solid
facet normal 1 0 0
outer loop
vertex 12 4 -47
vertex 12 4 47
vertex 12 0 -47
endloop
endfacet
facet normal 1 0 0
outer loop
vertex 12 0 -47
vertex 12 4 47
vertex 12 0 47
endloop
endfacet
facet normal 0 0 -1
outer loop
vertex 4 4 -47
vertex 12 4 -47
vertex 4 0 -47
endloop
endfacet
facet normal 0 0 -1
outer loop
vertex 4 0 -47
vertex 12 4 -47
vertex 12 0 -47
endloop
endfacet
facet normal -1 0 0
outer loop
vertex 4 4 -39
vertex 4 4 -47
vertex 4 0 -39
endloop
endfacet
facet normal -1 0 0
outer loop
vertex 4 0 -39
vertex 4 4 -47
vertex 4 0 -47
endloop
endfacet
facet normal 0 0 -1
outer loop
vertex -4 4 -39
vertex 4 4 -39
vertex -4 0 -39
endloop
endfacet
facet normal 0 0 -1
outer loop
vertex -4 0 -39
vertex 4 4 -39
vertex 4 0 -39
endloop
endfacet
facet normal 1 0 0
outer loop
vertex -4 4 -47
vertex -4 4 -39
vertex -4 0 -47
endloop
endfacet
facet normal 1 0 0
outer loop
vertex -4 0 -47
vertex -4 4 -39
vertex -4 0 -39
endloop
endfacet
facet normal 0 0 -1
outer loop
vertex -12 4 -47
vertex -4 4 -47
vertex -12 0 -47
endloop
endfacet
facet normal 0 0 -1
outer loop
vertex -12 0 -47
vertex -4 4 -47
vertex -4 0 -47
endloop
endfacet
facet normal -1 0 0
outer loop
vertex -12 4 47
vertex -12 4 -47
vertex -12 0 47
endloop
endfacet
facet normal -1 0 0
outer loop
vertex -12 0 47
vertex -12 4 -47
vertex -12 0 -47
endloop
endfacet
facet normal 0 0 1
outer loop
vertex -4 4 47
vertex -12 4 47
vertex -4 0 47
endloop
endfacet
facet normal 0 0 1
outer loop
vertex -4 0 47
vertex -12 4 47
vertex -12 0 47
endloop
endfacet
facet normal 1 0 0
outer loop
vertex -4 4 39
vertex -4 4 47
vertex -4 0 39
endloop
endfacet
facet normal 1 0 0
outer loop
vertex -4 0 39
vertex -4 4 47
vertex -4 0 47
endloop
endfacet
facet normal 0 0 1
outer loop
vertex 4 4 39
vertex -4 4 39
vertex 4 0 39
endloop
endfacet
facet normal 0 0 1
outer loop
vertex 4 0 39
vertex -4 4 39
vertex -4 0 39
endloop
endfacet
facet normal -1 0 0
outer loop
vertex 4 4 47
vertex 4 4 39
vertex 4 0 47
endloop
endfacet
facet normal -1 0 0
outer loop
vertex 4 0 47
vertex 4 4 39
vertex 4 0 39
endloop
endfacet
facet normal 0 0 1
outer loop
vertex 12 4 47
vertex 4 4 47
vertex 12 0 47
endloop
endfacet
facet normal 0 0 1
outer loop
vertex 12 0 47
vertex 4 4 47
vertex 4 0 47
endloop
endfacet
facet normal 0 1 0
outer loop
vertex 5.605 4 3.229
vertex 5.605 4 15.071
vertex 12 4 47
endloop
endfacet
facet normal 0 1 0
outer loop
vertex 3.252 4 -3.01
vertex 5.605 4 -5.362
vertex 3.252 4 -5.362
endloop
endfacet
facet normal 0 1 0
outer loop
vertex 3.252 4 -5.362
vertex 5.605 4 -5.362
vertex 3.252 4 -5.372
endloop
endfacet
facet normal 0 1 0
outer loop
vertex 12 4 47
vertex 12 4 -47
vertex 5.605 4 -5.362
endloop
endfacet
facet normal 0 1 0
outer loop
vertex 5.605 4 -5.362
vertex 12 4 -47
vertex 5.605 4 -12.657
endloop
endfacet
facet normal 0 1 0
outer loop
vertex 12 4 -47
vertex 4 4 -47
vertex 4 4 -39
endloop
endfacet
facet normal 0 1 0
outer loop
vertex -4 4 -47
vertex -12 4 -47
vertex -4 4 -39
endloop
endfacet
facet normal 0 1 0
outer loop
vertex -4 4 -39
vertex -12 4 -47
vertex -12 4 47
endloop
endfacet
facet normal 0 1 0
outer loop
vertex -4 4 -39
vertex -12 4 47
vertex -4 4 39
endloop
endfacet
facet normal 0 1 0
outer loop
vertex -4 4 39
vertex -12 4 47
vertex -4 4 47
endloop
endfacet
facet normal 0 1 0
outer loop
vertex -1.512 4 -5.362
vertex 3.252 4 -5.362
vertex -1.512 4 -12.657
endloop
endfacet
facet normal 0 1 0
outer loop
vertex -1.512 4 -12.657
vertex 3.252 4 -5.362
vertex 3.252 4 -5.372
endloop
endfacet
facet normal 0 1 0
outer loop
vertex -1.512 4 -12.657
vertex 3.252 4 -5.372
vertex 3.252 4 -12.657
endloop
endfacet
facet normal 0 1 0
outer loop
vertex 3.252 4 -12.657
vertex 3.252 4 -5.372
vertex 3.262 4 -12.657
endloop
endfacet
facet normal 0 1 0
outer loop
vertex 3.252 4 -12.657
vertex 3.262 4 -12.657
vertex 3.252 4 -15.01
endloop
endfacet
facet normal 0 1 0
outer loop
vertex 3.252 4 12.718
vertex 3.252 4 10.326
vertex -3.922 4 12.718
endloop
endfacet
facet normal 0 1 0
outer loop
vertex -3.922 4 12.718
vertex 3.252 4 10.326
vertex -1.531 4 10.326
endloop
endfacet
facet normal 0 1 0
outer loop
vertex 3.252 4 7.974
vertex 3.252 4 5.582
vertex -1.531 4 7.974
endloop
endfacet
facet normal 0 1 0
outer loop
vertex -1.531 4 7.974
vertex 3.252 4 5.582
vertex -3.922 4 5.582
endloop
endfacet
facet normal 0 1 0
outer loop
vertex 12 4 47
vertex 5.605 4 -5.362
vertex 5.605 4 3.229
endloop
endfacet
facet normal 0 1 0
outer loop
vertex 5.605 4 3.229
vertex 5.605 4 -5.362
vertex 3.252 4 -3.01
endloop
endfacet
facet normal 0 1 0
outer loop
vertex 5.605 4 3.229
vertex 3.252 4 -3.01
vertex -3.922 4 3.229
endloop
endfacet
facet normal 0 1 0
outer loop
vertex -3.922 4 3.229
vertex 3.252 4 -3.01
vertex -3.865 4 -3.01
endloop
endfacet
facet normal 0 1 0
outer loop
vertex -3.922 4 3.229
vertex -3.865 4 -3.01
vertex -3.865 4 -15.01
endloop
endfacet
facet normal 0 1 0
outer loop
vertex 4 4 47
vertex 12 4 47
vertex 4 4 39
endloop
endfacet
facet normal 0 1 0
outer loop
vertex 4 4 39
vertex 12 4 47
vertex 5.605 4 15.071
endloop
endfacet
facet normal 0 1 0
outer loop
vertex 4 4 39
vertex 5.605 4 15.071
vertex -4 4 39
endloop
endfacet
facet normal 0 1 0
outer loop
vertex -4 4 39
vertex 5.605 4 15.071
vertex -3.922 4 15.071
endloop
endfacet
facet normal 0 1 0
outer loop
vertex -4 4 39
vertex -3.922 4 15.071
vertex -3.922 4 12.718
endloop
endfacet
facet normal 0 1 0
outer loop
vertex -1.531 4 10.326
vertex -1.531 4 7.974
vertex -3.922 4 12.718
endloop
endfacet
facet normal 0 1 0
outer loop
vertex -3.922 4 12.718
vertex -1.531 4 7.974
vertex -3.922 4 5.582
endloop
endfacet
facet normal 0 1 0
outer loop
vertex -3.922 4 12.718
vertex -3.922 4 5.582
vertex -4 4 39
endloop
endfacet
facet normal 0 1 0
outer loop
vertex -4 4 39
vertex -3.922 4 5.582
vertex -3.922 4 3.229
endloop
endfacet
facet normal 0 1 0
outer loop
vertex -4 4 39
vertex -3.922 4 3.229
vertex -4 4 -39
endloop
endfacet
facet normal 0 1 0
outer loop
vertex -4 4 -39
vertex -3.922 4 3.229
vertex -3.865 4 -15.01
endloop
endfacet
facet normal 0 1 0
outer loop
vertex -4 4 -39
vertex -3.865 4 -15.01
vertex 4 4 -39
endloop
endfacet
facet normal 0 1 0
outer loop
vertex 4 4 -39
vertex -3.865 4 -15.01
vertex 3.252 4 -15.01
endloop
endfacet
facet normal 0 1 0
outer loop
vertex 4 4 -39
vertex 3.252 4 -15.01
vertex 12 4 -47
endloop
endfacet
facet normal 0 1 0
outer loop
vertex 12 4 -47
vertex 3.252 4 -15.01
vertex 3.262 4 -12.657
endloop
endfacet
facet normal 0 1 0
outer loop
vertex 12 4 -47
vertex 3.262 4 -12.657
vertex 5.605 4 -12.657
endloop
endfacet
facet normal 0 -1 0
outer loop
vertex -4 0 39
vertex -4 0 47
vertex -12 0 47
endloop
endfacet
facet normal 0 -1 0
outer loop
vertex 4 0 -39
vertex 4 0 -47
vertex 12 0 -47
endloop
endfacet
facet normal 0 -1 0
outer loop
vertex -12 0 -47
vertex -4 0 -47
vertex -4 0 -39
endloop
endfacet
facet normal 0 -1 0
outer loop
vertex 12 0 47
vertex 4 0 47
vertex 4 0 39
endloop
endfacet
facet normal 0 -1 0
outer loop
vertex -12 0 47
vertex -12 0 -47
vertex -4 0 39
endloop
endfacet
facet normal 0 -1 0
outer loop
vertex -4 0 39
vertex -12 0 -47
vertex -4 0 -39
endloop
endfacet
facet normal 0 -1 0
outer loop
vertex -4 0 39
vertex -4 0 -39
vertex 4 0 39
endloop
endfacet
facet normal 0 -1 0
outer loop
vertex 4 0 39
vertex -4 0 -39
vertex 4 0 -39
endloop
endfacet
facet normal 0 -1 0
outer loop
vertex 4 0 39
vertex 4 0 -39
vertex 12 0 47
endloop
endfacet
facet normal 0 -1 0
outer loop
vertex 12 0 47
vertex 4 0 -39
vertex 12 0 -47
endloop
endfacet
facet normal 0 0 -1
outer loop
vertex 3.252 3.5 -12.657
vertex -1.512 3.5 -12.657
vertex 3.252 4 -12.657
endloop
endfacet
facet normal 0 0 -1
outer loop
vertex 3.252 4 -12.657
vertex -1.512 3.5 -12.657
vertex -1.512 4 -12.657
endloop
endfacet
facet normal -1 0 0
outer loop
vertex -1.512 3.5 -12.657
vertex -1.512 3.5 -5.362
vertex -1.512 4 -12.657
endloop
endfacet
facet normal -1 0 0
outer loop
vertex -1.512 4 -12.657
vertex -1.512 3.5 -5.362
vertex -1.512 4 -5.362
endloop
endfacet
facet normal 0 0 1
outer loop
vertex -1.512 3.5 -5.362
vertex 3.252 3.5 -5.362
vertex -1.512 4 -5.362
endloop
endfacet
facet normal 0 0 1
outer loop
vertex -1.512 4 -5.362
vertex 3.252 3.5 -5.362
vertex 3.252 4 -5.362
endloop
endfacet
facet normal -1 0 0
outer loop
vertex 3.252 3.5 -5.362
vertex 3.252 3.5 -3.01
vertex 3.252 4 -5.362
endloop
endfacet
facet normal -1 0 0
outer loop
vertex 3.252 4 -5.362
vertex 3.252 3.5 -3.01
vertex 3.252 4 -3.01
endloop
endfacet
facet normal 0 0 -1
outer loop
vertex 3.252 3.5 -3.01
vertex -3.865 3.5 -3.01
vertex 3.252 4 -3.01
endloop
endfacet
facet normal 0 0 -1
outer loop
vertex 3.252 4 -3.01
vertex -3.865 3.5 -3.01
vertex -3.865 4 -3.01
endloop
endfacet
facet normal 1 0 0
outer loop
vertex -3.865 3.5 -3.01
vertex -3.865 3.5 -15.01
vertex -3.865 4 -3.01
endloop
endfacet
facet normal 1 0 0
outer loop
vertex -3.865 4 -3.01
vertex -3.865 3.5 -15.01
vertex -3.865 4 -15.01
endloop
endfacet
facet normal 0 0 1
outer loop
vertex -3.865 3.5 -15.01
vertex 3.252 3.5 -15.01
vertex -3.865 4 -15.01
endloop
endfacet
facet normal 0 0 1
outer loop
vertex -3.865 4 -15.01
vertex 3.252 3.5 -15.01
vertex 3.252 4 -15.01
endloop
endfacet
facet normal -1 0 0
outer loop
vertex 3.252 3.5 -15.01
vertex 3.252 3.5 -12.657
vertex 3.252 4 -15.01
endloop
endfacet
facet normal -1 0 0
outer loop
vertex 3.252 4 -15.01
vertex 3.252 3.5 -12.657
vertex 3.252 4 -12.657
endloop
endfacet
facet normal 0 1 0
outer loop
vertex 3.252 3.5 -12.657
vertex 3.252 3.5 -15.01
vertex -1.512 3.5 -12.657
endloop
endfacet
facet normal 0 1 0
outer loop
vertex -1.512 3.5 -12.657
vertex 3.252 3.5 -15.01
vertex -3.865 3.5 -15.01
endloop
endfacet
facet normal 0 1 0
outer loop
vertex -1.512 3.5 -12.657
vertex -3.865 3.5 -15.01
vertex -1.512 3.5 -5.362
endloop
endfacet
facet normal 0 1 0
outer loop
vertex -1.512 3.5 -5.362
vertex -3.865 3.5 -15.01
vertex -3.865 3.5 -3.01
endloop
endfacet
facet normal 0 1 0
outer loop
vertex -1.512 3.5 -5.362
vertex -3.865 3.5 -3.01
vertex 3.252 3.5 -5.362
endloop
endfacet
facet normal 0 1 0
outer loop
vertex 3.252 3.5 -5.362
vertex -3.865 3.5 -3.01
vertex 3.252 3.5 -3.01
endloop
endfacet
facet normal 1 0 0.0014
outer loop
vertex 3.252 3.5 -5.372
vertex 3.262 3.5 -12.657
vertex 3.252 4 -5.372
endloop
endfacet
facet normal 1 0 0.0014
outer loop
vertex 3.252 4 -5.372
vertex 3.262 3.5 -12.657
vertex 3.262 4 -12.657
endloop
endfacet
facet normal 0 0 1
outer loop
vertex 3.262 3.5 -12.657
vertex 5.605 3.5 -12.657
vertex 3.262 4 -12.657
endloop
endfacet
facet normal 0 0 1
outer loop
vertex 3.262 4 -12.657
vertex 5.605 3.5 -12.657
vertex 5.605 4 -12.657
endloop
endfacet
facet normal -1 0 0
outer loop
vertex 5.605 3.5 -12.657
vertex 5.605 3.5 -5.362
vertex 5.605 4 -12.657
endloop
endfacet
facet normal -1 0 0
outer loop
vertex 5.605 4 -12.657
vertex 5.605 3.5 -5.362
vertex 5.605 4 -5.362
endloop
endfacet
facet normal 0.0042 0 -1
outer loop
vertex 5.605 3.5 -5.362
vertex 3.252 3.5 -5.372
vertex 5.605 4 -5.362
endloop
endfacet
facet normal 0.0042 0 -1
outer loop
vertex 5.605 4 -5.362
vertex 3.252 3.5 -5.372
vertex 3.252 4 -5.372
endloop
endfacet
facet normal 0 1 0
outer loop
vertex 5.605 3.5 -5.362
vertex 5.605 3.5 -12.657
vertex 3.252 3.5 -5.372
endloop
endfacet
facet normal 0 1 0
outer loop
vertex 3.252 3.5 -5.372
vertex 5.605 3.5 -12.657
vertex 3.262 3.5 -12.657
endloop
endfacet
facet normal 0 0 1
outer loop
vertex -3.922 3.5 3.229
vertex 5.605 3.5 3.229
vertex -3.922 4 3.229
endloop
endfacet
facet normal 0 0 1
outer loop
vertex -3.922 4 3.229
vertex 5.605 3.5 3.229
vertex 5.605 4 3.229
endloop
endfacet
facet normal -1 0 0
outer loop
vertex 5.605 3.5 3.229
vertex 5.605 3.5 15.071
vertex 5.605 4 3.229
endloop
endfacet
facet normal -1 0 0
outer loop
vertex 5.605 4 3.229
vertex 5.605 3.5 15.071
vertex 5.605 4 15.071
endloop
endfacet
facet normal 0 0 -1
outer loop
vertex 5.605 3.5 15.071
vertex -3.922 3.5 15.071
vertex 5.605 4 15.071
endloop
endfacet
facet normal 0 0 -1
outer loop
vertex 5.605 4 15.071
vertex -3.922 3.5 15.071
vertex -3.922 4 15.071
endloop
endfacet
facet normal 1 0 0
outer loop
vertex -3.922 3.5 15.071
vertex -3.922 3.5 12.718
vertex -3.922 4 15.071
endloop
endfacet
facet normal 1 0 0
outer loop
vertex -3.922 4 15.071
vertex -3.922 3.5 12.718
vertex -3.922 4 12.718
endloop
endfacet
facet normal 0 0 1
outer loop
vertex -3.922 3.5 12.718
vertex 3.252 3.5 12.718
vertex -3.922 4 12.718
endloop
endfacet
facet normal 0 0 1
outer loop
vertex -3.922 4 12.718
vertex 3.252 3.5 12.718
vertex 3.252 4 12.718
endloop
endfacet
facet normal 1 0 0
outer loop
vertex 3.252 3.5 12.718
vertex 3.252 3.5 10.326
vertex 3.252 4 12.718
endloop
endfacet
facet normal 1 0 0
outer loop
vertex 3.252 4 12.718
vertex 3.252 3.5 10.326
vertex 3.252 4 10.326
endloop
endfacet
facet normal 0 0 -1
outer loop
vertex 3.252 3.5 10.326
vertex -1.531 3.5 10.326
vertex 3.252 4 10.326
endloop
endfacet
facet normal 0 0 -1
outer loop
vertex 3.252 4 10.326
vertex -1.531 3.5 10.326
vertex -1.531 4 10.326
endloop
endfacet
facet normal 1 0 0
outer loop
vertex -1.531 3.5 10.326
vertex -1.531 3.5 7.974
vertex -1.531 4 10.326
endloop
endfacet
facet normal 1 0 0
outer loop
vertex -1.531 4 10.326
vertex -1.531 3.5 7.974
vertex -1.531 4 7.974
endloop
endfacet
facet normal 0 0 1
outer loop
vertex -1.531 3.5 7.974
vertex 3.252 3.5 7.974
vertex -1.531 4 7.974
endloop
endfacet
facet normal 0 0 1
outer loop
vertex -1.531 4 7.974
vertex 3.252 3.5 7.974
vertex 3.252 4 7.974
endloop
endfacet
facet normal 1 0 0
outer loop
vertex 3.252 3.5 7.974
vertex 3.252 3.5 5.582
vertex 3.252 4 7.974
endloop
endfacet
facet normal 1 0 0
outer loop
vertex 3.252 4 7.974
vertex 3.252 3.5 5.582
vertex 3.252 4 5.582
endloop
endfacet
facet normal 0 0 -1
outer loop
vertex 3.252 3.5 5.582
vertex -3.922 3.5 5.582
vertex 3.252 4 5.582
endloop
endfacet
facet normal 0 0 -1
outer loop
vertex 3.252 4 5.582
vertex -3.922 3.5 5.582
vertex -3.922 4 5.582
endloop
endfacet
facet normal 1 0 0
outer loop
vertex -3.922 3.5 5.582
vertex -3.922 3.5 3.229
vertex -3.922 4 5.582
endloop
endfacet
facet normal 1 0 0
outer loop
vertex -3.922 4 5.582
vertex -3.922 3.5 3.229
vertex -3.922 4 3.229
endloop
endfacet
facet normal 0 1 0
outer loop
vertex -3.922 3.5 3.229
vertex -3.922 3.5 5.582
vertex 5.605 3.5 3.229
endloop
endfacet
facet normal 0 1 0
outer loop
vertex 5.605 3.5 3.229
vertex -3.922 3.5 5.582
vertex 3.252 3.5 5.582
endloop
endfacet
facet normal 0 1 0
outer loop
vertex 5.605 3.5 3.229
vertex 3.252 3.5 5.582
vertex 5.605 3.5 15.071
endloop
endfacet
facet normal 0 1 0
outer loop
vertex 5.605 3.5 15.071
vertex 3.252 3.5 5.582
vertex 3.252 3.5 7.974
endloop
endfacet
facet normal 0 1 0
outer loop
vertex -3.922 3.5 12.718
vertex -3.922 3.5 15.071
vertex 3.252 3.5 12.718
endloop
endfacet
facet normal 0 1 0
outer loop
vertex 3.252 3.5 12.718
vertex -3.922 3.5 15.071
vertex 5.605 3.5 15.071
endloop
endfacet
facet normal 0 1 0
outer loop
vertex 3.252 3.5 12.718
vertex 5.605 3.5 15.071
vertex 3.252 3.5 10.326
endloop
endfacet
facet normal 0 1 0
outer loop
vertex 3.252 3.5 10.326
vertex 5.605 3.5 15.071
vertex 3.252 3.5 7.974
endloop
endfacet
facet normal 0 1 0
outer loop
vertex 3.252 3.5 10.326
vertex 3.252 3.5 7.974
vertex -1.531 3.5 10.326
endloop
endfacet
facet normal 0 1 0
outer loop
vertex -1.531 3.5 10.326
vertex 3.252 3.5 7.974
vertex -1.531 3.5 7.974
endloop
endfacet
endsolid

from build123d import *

# Parameters (mm, degrees)
SKETCH_1_W          = 24
SKETCH_1_H          = 94
EXTRUDE_1_DEPTH     = 4
SKETCH_2_W          = 8
SKETCH_2_H          = 8
CUT_EXTRUDE_1_DEPTH = 5
SKETCH_3_W          = 8
SKETCH_3_H          = 8
CUT_EXTRUDE_2_DEPTH = 5
CUT_EXTRUDE_3_DEPTH = 0.5
CUT_EXTRUDE_4_DEPTH = 0.5
CUT_EXTRUDE_5_DEPTH = 0.5


with BuildPart() as part:
    # 草圖1 → 填料-伸長1 (new body)
    with BuildSketch(Plane(origin=(0, 4, 0), x_dir=(1, 0, 0), z_dir=(0, 1, 0))):
        Rectangle(SKETCH_1_W, SKETCH_1_H)
    extrude(amount=-EXTRUDE_1_DEPTH)

    # 草圖2 → 除料-伸長1 (cut, through all)
    with BuildSketch(Plane.XZ):
        with Locations((0, -43)):
            Rectangle(SKETCH_2_W, SKETCH_2_H)
    extrude(amount=-CUT_EXTRUDE_1_DEPTH, mode=Mode.SUBTRACT)

    # 草圖3 → 除料-伸長2 (cut, through all)
    with BuildSketch(Plane.XZ):
        with Locations((0, 43)):
            Rectangle(SKETCH_3_W, SKETCH_3_H)
    extrude(amount=-CUT_EXTRUDE_2_DEPTH, mode=Mode.SUBTRACT)

    # 草圖4 → 除料-伸長3 (cut)
    with BuildSketch(Plane(origin=(0, 4, 0), x_dir=(-1, 0, 0), z_dir=(0, 1, 0))):
        Polygon((-5.604611564, 15.070843631), (-5.604611564, 3.228998522), (3.921964275, 3.228998522), (3.921964275, 5.581554951), (-3.252055136, 5.581554951), (-3.252055136, 7.973642862), (1.530624471, 7.973642862), (1.530624471, 10.326199291), (-3.252055136, 10.326199291), (-3.252055136, 12.718289616), (3.921964275, 12.718289616), (3.921964275, 15.070843631), align=None)
    extrude(amount=-CUT_EXTRUDE_3_DEPTH, mode=Mode.SUBTRACT)

    # 草圖5 → 除料-伸長4 (cut)
    with BuildSketch(Plane(origin=(0, 4, 0), x_dir=(-1, 0, 0), z_dir=(0, 1, 0))):
        Polygon((1.512356153, -5.362438696), (1.512356153, -12.657328252), (-3.252055136, -12.657328252), (-3.252055136, -15.009884681), (3.864912581, -15.009884681), (3.864912581, -3.009884681), (-3.252055136, -3.009884681), (-3.252055136, -5.362438696), align=None)
    extrude(amount=-CUT_EXTRUDE_4_DEPTH, mode=Mode.SUBTRACT)

    # 草圖6 → 除料-伸長5 (cut)
    with BuildSketch(Plane(origin=(0, 4, 0), x_dir=(-1, 0, 0), z_dir=(0, 1, 0))):
        Polygon((-5.604611564, -12.657328252), (-3.262055136, -12.657328252), (-3.252055136, -5.372438696), (-5.604611564, -5.362438696), align=None)
    extrude(amount=-CUT_EXTRUDE_5_DEPTH, mode=Mode.SUBTRACT)


solid = part.part
